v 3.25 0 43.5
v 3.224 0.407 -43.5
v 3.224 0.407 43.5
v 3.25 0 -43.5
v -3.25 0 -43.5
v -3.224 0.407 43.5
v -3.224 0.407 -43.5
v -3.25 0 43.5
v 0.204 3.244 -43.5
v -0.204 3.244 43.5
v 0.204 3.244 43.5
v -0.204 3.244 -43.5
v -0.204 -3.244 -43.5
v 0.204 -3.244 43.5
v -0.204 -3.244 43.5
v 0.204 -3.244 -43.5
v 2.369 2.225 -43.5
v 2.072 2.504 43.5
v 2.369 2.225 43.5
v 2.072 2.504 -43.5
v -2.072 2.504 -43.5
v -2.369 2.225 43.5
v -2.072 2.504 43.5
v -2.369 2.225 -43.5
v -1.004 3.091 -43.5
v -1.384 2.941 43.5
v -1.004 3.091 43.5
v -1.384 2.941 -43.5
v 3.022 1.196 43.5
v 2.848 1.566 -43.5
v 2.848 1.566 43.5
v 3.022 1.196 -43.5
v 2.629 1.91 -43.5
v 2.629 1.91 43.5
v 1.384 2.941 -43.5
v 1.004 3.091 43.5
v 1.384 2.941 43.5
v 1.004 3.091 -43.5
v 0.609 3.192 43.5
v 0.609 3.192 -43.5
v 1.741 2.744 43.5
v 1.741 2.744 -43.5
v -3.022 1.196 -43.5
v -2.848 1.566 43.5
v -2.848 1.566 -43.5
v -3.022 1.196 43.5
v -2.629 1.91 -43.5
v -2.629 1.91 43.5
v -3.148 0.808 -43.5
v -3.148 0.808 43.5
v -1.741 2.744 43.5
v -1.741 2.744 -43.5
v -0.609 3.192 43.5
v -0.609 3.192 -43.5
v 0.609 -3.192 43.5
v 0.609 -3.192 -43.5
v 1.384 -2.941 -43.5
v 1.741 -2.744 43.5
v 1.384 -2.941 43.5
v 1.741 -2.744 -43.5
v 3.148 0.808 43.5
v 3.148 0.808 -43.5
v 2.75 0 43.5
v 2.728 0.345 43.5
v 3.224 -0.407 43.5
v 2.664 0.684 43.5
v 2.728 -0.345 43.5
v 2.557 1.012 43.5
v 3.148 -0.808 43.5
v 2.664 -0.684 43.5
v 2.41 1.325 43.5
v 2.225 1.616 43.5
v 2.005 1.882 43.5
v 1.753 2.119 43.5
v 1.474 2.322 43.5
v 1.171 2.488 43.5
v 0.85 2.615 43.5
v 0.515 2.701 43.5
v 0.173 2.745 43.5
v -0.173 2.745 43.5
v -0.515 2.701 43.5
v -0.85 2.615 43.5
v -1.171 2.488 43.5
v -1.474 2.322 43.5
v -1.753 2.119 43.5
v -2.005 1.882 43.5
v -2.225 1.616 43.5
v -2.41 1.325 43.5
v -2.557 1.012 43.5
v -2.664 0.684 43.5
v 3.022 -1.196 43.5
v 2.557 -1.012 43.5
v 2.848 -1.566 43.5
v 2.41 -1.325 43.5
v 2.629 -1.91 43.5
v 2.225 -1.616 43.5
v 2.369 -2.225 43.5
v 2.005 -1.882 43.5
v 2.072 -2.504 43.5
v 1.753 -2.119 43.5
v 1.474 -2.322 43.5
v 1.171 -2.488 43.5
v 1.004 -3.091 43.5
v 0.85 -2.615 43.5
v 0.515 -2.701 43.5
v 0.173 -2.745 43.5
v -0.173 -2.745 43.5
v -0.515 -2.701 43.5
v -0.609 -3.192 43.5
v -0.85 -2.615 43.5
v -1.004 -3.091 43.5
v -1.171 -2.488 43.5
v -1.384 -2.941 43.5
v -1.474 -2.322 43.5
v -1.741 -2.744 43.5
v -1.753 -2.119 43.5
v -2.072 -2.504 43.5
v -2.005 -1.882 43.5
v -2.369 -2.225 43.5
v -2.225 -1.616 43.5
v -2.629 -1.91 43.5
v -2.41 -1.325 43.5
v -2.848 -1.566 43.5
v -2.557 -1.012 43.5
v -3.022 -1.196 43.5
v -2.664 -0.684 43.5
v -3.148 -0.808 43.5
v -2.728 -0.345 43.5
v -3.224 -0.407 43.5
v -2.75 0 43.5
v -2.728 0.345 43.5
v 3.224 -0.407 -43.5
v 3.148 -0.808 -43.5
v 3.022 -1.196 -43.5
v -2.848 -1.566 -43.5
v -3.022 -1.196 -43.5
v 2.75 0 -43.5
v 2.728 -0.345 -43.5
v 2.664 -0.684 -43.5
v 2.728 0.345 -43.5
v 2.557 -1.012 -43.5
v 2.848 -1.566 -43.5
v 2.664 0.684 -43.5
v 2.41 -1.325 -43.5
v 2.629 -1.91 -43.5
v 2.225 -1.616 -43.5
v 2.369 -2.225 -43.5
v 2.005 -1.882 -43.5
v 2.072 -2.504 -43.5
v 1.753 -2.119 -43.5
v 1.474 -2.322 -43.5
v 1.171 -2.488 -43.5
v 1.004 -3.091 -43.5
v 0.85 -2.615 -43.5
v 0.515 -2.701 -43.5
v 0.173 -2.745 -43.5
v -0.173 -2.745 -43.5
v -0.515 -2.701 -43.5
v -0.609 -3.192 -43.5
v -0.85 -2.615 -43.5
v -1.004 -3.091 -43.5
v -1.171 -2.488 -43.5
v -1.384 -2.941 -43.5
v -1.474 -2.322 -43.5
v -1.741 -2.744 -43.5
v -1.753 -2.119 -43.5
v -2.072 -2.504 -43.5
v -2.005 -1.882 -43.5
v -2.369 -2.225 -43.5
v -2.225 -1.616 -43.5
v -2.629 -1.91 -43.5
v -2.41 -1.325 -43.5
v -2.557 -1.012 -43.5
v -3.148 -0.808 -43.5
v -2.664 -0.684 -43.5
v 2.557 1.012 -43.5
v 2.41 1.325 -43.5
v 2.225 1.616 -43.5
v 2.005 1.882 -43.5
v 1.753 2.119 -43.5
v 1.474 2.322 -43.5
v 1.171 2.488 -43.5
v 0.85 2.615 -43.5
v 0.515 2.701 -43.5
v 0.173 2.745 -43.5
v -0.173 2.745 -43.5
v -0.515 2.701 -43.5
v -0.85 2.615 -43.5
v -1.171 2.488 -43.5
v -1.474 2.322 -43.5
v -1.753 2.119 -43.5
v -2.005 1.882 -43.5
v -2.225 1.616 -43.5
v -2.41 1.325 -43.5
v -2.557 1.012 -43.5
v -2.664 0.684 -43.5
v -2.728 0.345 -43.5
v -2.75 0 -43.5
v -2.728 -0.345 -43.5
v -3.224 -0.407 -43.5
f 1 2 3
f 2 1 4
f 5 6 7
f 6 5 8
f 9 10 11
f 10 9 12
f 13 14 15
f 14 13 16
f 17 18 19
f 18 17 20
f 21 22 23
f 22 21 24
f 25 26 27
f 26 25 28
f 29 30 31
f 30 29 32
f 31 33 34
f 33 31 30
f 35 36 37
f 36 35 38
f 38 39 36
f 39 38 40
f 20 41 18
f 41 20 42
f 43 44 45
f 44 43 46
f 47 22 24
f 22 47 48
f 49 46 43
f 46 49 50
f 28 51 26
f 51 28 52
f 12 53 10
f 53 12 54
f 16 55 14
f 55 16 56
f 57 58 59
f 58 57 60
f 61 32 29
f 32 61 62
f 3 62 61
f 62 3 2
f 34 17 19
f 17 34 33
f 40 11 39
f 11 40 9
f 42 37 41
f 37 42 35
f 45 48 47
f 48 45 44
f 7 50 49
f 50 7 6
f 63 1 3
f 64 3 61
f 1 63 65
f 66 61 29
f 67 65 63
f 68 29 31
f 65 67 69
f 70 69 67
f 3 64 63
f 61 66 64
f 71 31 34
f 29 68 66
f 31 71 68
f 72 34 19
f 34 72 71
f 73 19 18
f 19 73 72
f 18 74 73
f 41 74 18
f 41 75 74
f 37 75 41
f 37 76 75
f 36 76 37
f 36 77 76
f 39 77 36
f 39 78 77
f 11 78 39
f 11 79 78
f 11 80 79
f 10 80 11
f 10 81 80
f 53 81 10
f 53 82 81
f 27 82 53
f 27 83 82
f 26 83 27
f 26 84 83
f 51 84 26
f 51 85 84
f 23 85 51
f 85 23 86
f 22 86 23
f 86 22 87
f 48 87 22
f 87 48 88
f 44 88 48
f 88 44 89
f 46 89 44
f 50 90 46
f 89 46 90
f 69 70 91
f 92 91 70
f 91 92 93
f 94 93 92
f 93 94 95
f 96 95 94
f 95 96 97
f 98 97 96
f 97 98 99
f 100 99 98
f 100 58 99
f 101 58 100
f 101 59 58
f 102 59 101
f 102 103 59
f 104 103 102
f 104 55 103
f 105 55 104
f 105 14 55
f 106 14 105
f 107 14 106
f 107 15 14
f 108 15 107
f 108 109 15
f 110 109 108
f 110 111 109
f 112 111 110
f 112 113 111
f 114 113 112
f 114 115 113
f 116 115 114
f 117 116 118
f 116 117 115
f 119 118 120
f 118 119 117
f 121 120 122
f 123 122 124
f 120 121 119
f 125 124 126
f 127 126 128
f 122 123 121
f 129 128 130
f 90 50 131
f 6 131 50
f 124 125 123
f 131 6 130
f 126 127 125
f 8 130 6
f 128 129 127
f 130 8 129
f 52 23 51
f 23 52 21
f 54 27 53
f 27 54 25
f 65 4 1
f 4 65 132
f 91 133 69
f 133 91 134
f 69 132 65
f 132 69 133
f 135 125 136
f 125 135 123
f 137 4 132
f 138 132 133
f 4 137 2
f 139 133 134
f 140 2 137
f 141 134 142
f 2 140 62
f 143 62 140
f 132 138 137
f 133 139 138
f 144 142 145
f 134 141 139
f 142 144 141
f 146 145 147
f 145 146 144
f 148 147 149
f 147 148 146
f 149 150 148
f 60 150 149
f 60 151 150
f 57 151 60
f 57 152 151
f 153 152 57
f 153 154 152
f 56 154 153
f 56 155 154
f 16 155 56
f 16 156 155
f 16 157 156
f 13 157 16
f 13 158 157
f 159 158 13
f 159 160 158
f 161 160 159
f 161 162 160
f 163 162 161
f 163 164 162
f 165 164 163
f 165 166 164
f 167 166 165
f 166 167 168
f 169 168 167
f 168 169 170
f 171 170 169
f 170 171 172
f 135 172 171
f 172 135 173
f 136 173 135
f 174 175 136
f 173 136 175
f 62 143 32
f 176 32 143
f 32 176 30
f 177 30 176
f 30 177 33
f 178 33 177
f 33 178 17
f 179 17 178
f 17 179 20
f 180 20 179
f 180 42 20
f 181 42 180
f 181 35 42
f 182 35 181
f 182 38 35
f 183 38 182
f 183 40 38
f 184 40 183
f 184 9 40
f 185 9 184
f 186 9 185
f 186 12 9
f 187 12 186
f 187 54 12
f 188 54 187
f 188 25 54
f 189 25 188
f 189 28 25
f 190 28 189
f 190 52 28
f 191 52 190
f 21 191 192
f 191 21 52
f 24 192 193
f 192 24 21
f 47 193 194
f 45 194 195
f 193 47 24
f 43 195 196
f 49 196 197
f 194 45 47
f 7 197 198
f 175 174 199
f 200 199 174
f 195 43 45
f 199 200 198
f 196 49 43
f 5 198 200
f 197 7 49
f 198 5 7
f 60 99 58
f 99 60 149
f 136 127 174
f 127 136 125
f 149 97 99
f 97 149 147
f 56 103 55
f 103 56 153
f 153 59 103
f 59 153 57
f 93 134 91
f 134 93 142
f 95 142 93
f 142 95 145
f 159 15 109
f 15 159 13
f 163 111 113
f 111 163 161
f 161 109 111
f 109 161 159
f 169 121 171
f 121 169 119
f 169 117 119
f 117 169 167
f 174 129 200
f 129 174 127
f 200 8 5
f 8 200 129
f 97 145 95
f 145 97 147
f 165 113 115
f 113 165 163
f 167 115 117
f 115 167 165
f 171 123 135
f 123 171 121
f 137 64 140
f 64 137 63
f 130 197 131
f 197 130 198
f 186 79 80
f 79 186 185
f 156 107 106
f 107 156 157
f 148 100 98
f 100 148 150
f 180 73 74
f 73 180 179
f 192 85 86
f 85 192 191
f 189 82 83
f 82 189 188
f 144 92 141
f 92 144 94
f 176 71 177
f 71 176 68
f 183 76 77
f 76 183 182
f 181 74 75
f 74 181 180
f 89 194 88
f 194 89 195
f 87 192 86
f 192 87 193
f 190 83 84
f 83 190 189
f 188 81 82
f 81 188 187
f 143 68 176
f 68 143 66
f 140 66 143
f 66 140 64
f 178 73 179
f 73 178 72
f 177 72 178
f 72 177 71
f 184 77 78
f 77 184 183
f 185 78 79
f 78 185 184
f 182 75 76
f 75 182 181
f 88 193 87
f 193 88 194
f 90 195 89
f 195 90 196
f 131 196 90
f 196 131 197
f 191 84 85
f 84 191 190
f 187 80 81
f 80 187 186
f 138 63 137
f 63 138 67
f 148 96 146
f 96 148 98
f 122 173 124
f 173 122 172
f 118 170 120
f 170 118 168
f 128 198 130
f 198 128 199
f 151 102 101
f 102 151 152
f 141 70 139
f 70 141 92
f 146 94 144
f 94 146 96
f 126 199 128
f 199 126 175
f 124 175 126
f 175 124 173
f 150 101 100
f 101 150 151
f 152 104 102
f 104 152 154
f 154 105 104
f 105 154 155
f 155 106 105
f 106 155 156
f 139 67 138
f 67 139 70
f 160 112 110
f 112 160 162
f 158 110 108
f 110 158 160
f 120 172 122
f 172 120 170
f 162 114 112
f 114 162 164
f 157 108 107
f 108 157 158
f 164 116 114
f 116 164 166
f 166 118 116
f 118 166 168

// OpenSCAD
$fn = 50;


difference() {
	union() {
		translate(v = [0, 0, -43.5000000000]) {
			cylinder(h = 87, r = 3.2500000000);
		}
	}
	union() {
		translate(v = [0, 0, -100.0000000000]) {
			cylinder(h = 200, r = 2.7500000000);
		}
	}
}
